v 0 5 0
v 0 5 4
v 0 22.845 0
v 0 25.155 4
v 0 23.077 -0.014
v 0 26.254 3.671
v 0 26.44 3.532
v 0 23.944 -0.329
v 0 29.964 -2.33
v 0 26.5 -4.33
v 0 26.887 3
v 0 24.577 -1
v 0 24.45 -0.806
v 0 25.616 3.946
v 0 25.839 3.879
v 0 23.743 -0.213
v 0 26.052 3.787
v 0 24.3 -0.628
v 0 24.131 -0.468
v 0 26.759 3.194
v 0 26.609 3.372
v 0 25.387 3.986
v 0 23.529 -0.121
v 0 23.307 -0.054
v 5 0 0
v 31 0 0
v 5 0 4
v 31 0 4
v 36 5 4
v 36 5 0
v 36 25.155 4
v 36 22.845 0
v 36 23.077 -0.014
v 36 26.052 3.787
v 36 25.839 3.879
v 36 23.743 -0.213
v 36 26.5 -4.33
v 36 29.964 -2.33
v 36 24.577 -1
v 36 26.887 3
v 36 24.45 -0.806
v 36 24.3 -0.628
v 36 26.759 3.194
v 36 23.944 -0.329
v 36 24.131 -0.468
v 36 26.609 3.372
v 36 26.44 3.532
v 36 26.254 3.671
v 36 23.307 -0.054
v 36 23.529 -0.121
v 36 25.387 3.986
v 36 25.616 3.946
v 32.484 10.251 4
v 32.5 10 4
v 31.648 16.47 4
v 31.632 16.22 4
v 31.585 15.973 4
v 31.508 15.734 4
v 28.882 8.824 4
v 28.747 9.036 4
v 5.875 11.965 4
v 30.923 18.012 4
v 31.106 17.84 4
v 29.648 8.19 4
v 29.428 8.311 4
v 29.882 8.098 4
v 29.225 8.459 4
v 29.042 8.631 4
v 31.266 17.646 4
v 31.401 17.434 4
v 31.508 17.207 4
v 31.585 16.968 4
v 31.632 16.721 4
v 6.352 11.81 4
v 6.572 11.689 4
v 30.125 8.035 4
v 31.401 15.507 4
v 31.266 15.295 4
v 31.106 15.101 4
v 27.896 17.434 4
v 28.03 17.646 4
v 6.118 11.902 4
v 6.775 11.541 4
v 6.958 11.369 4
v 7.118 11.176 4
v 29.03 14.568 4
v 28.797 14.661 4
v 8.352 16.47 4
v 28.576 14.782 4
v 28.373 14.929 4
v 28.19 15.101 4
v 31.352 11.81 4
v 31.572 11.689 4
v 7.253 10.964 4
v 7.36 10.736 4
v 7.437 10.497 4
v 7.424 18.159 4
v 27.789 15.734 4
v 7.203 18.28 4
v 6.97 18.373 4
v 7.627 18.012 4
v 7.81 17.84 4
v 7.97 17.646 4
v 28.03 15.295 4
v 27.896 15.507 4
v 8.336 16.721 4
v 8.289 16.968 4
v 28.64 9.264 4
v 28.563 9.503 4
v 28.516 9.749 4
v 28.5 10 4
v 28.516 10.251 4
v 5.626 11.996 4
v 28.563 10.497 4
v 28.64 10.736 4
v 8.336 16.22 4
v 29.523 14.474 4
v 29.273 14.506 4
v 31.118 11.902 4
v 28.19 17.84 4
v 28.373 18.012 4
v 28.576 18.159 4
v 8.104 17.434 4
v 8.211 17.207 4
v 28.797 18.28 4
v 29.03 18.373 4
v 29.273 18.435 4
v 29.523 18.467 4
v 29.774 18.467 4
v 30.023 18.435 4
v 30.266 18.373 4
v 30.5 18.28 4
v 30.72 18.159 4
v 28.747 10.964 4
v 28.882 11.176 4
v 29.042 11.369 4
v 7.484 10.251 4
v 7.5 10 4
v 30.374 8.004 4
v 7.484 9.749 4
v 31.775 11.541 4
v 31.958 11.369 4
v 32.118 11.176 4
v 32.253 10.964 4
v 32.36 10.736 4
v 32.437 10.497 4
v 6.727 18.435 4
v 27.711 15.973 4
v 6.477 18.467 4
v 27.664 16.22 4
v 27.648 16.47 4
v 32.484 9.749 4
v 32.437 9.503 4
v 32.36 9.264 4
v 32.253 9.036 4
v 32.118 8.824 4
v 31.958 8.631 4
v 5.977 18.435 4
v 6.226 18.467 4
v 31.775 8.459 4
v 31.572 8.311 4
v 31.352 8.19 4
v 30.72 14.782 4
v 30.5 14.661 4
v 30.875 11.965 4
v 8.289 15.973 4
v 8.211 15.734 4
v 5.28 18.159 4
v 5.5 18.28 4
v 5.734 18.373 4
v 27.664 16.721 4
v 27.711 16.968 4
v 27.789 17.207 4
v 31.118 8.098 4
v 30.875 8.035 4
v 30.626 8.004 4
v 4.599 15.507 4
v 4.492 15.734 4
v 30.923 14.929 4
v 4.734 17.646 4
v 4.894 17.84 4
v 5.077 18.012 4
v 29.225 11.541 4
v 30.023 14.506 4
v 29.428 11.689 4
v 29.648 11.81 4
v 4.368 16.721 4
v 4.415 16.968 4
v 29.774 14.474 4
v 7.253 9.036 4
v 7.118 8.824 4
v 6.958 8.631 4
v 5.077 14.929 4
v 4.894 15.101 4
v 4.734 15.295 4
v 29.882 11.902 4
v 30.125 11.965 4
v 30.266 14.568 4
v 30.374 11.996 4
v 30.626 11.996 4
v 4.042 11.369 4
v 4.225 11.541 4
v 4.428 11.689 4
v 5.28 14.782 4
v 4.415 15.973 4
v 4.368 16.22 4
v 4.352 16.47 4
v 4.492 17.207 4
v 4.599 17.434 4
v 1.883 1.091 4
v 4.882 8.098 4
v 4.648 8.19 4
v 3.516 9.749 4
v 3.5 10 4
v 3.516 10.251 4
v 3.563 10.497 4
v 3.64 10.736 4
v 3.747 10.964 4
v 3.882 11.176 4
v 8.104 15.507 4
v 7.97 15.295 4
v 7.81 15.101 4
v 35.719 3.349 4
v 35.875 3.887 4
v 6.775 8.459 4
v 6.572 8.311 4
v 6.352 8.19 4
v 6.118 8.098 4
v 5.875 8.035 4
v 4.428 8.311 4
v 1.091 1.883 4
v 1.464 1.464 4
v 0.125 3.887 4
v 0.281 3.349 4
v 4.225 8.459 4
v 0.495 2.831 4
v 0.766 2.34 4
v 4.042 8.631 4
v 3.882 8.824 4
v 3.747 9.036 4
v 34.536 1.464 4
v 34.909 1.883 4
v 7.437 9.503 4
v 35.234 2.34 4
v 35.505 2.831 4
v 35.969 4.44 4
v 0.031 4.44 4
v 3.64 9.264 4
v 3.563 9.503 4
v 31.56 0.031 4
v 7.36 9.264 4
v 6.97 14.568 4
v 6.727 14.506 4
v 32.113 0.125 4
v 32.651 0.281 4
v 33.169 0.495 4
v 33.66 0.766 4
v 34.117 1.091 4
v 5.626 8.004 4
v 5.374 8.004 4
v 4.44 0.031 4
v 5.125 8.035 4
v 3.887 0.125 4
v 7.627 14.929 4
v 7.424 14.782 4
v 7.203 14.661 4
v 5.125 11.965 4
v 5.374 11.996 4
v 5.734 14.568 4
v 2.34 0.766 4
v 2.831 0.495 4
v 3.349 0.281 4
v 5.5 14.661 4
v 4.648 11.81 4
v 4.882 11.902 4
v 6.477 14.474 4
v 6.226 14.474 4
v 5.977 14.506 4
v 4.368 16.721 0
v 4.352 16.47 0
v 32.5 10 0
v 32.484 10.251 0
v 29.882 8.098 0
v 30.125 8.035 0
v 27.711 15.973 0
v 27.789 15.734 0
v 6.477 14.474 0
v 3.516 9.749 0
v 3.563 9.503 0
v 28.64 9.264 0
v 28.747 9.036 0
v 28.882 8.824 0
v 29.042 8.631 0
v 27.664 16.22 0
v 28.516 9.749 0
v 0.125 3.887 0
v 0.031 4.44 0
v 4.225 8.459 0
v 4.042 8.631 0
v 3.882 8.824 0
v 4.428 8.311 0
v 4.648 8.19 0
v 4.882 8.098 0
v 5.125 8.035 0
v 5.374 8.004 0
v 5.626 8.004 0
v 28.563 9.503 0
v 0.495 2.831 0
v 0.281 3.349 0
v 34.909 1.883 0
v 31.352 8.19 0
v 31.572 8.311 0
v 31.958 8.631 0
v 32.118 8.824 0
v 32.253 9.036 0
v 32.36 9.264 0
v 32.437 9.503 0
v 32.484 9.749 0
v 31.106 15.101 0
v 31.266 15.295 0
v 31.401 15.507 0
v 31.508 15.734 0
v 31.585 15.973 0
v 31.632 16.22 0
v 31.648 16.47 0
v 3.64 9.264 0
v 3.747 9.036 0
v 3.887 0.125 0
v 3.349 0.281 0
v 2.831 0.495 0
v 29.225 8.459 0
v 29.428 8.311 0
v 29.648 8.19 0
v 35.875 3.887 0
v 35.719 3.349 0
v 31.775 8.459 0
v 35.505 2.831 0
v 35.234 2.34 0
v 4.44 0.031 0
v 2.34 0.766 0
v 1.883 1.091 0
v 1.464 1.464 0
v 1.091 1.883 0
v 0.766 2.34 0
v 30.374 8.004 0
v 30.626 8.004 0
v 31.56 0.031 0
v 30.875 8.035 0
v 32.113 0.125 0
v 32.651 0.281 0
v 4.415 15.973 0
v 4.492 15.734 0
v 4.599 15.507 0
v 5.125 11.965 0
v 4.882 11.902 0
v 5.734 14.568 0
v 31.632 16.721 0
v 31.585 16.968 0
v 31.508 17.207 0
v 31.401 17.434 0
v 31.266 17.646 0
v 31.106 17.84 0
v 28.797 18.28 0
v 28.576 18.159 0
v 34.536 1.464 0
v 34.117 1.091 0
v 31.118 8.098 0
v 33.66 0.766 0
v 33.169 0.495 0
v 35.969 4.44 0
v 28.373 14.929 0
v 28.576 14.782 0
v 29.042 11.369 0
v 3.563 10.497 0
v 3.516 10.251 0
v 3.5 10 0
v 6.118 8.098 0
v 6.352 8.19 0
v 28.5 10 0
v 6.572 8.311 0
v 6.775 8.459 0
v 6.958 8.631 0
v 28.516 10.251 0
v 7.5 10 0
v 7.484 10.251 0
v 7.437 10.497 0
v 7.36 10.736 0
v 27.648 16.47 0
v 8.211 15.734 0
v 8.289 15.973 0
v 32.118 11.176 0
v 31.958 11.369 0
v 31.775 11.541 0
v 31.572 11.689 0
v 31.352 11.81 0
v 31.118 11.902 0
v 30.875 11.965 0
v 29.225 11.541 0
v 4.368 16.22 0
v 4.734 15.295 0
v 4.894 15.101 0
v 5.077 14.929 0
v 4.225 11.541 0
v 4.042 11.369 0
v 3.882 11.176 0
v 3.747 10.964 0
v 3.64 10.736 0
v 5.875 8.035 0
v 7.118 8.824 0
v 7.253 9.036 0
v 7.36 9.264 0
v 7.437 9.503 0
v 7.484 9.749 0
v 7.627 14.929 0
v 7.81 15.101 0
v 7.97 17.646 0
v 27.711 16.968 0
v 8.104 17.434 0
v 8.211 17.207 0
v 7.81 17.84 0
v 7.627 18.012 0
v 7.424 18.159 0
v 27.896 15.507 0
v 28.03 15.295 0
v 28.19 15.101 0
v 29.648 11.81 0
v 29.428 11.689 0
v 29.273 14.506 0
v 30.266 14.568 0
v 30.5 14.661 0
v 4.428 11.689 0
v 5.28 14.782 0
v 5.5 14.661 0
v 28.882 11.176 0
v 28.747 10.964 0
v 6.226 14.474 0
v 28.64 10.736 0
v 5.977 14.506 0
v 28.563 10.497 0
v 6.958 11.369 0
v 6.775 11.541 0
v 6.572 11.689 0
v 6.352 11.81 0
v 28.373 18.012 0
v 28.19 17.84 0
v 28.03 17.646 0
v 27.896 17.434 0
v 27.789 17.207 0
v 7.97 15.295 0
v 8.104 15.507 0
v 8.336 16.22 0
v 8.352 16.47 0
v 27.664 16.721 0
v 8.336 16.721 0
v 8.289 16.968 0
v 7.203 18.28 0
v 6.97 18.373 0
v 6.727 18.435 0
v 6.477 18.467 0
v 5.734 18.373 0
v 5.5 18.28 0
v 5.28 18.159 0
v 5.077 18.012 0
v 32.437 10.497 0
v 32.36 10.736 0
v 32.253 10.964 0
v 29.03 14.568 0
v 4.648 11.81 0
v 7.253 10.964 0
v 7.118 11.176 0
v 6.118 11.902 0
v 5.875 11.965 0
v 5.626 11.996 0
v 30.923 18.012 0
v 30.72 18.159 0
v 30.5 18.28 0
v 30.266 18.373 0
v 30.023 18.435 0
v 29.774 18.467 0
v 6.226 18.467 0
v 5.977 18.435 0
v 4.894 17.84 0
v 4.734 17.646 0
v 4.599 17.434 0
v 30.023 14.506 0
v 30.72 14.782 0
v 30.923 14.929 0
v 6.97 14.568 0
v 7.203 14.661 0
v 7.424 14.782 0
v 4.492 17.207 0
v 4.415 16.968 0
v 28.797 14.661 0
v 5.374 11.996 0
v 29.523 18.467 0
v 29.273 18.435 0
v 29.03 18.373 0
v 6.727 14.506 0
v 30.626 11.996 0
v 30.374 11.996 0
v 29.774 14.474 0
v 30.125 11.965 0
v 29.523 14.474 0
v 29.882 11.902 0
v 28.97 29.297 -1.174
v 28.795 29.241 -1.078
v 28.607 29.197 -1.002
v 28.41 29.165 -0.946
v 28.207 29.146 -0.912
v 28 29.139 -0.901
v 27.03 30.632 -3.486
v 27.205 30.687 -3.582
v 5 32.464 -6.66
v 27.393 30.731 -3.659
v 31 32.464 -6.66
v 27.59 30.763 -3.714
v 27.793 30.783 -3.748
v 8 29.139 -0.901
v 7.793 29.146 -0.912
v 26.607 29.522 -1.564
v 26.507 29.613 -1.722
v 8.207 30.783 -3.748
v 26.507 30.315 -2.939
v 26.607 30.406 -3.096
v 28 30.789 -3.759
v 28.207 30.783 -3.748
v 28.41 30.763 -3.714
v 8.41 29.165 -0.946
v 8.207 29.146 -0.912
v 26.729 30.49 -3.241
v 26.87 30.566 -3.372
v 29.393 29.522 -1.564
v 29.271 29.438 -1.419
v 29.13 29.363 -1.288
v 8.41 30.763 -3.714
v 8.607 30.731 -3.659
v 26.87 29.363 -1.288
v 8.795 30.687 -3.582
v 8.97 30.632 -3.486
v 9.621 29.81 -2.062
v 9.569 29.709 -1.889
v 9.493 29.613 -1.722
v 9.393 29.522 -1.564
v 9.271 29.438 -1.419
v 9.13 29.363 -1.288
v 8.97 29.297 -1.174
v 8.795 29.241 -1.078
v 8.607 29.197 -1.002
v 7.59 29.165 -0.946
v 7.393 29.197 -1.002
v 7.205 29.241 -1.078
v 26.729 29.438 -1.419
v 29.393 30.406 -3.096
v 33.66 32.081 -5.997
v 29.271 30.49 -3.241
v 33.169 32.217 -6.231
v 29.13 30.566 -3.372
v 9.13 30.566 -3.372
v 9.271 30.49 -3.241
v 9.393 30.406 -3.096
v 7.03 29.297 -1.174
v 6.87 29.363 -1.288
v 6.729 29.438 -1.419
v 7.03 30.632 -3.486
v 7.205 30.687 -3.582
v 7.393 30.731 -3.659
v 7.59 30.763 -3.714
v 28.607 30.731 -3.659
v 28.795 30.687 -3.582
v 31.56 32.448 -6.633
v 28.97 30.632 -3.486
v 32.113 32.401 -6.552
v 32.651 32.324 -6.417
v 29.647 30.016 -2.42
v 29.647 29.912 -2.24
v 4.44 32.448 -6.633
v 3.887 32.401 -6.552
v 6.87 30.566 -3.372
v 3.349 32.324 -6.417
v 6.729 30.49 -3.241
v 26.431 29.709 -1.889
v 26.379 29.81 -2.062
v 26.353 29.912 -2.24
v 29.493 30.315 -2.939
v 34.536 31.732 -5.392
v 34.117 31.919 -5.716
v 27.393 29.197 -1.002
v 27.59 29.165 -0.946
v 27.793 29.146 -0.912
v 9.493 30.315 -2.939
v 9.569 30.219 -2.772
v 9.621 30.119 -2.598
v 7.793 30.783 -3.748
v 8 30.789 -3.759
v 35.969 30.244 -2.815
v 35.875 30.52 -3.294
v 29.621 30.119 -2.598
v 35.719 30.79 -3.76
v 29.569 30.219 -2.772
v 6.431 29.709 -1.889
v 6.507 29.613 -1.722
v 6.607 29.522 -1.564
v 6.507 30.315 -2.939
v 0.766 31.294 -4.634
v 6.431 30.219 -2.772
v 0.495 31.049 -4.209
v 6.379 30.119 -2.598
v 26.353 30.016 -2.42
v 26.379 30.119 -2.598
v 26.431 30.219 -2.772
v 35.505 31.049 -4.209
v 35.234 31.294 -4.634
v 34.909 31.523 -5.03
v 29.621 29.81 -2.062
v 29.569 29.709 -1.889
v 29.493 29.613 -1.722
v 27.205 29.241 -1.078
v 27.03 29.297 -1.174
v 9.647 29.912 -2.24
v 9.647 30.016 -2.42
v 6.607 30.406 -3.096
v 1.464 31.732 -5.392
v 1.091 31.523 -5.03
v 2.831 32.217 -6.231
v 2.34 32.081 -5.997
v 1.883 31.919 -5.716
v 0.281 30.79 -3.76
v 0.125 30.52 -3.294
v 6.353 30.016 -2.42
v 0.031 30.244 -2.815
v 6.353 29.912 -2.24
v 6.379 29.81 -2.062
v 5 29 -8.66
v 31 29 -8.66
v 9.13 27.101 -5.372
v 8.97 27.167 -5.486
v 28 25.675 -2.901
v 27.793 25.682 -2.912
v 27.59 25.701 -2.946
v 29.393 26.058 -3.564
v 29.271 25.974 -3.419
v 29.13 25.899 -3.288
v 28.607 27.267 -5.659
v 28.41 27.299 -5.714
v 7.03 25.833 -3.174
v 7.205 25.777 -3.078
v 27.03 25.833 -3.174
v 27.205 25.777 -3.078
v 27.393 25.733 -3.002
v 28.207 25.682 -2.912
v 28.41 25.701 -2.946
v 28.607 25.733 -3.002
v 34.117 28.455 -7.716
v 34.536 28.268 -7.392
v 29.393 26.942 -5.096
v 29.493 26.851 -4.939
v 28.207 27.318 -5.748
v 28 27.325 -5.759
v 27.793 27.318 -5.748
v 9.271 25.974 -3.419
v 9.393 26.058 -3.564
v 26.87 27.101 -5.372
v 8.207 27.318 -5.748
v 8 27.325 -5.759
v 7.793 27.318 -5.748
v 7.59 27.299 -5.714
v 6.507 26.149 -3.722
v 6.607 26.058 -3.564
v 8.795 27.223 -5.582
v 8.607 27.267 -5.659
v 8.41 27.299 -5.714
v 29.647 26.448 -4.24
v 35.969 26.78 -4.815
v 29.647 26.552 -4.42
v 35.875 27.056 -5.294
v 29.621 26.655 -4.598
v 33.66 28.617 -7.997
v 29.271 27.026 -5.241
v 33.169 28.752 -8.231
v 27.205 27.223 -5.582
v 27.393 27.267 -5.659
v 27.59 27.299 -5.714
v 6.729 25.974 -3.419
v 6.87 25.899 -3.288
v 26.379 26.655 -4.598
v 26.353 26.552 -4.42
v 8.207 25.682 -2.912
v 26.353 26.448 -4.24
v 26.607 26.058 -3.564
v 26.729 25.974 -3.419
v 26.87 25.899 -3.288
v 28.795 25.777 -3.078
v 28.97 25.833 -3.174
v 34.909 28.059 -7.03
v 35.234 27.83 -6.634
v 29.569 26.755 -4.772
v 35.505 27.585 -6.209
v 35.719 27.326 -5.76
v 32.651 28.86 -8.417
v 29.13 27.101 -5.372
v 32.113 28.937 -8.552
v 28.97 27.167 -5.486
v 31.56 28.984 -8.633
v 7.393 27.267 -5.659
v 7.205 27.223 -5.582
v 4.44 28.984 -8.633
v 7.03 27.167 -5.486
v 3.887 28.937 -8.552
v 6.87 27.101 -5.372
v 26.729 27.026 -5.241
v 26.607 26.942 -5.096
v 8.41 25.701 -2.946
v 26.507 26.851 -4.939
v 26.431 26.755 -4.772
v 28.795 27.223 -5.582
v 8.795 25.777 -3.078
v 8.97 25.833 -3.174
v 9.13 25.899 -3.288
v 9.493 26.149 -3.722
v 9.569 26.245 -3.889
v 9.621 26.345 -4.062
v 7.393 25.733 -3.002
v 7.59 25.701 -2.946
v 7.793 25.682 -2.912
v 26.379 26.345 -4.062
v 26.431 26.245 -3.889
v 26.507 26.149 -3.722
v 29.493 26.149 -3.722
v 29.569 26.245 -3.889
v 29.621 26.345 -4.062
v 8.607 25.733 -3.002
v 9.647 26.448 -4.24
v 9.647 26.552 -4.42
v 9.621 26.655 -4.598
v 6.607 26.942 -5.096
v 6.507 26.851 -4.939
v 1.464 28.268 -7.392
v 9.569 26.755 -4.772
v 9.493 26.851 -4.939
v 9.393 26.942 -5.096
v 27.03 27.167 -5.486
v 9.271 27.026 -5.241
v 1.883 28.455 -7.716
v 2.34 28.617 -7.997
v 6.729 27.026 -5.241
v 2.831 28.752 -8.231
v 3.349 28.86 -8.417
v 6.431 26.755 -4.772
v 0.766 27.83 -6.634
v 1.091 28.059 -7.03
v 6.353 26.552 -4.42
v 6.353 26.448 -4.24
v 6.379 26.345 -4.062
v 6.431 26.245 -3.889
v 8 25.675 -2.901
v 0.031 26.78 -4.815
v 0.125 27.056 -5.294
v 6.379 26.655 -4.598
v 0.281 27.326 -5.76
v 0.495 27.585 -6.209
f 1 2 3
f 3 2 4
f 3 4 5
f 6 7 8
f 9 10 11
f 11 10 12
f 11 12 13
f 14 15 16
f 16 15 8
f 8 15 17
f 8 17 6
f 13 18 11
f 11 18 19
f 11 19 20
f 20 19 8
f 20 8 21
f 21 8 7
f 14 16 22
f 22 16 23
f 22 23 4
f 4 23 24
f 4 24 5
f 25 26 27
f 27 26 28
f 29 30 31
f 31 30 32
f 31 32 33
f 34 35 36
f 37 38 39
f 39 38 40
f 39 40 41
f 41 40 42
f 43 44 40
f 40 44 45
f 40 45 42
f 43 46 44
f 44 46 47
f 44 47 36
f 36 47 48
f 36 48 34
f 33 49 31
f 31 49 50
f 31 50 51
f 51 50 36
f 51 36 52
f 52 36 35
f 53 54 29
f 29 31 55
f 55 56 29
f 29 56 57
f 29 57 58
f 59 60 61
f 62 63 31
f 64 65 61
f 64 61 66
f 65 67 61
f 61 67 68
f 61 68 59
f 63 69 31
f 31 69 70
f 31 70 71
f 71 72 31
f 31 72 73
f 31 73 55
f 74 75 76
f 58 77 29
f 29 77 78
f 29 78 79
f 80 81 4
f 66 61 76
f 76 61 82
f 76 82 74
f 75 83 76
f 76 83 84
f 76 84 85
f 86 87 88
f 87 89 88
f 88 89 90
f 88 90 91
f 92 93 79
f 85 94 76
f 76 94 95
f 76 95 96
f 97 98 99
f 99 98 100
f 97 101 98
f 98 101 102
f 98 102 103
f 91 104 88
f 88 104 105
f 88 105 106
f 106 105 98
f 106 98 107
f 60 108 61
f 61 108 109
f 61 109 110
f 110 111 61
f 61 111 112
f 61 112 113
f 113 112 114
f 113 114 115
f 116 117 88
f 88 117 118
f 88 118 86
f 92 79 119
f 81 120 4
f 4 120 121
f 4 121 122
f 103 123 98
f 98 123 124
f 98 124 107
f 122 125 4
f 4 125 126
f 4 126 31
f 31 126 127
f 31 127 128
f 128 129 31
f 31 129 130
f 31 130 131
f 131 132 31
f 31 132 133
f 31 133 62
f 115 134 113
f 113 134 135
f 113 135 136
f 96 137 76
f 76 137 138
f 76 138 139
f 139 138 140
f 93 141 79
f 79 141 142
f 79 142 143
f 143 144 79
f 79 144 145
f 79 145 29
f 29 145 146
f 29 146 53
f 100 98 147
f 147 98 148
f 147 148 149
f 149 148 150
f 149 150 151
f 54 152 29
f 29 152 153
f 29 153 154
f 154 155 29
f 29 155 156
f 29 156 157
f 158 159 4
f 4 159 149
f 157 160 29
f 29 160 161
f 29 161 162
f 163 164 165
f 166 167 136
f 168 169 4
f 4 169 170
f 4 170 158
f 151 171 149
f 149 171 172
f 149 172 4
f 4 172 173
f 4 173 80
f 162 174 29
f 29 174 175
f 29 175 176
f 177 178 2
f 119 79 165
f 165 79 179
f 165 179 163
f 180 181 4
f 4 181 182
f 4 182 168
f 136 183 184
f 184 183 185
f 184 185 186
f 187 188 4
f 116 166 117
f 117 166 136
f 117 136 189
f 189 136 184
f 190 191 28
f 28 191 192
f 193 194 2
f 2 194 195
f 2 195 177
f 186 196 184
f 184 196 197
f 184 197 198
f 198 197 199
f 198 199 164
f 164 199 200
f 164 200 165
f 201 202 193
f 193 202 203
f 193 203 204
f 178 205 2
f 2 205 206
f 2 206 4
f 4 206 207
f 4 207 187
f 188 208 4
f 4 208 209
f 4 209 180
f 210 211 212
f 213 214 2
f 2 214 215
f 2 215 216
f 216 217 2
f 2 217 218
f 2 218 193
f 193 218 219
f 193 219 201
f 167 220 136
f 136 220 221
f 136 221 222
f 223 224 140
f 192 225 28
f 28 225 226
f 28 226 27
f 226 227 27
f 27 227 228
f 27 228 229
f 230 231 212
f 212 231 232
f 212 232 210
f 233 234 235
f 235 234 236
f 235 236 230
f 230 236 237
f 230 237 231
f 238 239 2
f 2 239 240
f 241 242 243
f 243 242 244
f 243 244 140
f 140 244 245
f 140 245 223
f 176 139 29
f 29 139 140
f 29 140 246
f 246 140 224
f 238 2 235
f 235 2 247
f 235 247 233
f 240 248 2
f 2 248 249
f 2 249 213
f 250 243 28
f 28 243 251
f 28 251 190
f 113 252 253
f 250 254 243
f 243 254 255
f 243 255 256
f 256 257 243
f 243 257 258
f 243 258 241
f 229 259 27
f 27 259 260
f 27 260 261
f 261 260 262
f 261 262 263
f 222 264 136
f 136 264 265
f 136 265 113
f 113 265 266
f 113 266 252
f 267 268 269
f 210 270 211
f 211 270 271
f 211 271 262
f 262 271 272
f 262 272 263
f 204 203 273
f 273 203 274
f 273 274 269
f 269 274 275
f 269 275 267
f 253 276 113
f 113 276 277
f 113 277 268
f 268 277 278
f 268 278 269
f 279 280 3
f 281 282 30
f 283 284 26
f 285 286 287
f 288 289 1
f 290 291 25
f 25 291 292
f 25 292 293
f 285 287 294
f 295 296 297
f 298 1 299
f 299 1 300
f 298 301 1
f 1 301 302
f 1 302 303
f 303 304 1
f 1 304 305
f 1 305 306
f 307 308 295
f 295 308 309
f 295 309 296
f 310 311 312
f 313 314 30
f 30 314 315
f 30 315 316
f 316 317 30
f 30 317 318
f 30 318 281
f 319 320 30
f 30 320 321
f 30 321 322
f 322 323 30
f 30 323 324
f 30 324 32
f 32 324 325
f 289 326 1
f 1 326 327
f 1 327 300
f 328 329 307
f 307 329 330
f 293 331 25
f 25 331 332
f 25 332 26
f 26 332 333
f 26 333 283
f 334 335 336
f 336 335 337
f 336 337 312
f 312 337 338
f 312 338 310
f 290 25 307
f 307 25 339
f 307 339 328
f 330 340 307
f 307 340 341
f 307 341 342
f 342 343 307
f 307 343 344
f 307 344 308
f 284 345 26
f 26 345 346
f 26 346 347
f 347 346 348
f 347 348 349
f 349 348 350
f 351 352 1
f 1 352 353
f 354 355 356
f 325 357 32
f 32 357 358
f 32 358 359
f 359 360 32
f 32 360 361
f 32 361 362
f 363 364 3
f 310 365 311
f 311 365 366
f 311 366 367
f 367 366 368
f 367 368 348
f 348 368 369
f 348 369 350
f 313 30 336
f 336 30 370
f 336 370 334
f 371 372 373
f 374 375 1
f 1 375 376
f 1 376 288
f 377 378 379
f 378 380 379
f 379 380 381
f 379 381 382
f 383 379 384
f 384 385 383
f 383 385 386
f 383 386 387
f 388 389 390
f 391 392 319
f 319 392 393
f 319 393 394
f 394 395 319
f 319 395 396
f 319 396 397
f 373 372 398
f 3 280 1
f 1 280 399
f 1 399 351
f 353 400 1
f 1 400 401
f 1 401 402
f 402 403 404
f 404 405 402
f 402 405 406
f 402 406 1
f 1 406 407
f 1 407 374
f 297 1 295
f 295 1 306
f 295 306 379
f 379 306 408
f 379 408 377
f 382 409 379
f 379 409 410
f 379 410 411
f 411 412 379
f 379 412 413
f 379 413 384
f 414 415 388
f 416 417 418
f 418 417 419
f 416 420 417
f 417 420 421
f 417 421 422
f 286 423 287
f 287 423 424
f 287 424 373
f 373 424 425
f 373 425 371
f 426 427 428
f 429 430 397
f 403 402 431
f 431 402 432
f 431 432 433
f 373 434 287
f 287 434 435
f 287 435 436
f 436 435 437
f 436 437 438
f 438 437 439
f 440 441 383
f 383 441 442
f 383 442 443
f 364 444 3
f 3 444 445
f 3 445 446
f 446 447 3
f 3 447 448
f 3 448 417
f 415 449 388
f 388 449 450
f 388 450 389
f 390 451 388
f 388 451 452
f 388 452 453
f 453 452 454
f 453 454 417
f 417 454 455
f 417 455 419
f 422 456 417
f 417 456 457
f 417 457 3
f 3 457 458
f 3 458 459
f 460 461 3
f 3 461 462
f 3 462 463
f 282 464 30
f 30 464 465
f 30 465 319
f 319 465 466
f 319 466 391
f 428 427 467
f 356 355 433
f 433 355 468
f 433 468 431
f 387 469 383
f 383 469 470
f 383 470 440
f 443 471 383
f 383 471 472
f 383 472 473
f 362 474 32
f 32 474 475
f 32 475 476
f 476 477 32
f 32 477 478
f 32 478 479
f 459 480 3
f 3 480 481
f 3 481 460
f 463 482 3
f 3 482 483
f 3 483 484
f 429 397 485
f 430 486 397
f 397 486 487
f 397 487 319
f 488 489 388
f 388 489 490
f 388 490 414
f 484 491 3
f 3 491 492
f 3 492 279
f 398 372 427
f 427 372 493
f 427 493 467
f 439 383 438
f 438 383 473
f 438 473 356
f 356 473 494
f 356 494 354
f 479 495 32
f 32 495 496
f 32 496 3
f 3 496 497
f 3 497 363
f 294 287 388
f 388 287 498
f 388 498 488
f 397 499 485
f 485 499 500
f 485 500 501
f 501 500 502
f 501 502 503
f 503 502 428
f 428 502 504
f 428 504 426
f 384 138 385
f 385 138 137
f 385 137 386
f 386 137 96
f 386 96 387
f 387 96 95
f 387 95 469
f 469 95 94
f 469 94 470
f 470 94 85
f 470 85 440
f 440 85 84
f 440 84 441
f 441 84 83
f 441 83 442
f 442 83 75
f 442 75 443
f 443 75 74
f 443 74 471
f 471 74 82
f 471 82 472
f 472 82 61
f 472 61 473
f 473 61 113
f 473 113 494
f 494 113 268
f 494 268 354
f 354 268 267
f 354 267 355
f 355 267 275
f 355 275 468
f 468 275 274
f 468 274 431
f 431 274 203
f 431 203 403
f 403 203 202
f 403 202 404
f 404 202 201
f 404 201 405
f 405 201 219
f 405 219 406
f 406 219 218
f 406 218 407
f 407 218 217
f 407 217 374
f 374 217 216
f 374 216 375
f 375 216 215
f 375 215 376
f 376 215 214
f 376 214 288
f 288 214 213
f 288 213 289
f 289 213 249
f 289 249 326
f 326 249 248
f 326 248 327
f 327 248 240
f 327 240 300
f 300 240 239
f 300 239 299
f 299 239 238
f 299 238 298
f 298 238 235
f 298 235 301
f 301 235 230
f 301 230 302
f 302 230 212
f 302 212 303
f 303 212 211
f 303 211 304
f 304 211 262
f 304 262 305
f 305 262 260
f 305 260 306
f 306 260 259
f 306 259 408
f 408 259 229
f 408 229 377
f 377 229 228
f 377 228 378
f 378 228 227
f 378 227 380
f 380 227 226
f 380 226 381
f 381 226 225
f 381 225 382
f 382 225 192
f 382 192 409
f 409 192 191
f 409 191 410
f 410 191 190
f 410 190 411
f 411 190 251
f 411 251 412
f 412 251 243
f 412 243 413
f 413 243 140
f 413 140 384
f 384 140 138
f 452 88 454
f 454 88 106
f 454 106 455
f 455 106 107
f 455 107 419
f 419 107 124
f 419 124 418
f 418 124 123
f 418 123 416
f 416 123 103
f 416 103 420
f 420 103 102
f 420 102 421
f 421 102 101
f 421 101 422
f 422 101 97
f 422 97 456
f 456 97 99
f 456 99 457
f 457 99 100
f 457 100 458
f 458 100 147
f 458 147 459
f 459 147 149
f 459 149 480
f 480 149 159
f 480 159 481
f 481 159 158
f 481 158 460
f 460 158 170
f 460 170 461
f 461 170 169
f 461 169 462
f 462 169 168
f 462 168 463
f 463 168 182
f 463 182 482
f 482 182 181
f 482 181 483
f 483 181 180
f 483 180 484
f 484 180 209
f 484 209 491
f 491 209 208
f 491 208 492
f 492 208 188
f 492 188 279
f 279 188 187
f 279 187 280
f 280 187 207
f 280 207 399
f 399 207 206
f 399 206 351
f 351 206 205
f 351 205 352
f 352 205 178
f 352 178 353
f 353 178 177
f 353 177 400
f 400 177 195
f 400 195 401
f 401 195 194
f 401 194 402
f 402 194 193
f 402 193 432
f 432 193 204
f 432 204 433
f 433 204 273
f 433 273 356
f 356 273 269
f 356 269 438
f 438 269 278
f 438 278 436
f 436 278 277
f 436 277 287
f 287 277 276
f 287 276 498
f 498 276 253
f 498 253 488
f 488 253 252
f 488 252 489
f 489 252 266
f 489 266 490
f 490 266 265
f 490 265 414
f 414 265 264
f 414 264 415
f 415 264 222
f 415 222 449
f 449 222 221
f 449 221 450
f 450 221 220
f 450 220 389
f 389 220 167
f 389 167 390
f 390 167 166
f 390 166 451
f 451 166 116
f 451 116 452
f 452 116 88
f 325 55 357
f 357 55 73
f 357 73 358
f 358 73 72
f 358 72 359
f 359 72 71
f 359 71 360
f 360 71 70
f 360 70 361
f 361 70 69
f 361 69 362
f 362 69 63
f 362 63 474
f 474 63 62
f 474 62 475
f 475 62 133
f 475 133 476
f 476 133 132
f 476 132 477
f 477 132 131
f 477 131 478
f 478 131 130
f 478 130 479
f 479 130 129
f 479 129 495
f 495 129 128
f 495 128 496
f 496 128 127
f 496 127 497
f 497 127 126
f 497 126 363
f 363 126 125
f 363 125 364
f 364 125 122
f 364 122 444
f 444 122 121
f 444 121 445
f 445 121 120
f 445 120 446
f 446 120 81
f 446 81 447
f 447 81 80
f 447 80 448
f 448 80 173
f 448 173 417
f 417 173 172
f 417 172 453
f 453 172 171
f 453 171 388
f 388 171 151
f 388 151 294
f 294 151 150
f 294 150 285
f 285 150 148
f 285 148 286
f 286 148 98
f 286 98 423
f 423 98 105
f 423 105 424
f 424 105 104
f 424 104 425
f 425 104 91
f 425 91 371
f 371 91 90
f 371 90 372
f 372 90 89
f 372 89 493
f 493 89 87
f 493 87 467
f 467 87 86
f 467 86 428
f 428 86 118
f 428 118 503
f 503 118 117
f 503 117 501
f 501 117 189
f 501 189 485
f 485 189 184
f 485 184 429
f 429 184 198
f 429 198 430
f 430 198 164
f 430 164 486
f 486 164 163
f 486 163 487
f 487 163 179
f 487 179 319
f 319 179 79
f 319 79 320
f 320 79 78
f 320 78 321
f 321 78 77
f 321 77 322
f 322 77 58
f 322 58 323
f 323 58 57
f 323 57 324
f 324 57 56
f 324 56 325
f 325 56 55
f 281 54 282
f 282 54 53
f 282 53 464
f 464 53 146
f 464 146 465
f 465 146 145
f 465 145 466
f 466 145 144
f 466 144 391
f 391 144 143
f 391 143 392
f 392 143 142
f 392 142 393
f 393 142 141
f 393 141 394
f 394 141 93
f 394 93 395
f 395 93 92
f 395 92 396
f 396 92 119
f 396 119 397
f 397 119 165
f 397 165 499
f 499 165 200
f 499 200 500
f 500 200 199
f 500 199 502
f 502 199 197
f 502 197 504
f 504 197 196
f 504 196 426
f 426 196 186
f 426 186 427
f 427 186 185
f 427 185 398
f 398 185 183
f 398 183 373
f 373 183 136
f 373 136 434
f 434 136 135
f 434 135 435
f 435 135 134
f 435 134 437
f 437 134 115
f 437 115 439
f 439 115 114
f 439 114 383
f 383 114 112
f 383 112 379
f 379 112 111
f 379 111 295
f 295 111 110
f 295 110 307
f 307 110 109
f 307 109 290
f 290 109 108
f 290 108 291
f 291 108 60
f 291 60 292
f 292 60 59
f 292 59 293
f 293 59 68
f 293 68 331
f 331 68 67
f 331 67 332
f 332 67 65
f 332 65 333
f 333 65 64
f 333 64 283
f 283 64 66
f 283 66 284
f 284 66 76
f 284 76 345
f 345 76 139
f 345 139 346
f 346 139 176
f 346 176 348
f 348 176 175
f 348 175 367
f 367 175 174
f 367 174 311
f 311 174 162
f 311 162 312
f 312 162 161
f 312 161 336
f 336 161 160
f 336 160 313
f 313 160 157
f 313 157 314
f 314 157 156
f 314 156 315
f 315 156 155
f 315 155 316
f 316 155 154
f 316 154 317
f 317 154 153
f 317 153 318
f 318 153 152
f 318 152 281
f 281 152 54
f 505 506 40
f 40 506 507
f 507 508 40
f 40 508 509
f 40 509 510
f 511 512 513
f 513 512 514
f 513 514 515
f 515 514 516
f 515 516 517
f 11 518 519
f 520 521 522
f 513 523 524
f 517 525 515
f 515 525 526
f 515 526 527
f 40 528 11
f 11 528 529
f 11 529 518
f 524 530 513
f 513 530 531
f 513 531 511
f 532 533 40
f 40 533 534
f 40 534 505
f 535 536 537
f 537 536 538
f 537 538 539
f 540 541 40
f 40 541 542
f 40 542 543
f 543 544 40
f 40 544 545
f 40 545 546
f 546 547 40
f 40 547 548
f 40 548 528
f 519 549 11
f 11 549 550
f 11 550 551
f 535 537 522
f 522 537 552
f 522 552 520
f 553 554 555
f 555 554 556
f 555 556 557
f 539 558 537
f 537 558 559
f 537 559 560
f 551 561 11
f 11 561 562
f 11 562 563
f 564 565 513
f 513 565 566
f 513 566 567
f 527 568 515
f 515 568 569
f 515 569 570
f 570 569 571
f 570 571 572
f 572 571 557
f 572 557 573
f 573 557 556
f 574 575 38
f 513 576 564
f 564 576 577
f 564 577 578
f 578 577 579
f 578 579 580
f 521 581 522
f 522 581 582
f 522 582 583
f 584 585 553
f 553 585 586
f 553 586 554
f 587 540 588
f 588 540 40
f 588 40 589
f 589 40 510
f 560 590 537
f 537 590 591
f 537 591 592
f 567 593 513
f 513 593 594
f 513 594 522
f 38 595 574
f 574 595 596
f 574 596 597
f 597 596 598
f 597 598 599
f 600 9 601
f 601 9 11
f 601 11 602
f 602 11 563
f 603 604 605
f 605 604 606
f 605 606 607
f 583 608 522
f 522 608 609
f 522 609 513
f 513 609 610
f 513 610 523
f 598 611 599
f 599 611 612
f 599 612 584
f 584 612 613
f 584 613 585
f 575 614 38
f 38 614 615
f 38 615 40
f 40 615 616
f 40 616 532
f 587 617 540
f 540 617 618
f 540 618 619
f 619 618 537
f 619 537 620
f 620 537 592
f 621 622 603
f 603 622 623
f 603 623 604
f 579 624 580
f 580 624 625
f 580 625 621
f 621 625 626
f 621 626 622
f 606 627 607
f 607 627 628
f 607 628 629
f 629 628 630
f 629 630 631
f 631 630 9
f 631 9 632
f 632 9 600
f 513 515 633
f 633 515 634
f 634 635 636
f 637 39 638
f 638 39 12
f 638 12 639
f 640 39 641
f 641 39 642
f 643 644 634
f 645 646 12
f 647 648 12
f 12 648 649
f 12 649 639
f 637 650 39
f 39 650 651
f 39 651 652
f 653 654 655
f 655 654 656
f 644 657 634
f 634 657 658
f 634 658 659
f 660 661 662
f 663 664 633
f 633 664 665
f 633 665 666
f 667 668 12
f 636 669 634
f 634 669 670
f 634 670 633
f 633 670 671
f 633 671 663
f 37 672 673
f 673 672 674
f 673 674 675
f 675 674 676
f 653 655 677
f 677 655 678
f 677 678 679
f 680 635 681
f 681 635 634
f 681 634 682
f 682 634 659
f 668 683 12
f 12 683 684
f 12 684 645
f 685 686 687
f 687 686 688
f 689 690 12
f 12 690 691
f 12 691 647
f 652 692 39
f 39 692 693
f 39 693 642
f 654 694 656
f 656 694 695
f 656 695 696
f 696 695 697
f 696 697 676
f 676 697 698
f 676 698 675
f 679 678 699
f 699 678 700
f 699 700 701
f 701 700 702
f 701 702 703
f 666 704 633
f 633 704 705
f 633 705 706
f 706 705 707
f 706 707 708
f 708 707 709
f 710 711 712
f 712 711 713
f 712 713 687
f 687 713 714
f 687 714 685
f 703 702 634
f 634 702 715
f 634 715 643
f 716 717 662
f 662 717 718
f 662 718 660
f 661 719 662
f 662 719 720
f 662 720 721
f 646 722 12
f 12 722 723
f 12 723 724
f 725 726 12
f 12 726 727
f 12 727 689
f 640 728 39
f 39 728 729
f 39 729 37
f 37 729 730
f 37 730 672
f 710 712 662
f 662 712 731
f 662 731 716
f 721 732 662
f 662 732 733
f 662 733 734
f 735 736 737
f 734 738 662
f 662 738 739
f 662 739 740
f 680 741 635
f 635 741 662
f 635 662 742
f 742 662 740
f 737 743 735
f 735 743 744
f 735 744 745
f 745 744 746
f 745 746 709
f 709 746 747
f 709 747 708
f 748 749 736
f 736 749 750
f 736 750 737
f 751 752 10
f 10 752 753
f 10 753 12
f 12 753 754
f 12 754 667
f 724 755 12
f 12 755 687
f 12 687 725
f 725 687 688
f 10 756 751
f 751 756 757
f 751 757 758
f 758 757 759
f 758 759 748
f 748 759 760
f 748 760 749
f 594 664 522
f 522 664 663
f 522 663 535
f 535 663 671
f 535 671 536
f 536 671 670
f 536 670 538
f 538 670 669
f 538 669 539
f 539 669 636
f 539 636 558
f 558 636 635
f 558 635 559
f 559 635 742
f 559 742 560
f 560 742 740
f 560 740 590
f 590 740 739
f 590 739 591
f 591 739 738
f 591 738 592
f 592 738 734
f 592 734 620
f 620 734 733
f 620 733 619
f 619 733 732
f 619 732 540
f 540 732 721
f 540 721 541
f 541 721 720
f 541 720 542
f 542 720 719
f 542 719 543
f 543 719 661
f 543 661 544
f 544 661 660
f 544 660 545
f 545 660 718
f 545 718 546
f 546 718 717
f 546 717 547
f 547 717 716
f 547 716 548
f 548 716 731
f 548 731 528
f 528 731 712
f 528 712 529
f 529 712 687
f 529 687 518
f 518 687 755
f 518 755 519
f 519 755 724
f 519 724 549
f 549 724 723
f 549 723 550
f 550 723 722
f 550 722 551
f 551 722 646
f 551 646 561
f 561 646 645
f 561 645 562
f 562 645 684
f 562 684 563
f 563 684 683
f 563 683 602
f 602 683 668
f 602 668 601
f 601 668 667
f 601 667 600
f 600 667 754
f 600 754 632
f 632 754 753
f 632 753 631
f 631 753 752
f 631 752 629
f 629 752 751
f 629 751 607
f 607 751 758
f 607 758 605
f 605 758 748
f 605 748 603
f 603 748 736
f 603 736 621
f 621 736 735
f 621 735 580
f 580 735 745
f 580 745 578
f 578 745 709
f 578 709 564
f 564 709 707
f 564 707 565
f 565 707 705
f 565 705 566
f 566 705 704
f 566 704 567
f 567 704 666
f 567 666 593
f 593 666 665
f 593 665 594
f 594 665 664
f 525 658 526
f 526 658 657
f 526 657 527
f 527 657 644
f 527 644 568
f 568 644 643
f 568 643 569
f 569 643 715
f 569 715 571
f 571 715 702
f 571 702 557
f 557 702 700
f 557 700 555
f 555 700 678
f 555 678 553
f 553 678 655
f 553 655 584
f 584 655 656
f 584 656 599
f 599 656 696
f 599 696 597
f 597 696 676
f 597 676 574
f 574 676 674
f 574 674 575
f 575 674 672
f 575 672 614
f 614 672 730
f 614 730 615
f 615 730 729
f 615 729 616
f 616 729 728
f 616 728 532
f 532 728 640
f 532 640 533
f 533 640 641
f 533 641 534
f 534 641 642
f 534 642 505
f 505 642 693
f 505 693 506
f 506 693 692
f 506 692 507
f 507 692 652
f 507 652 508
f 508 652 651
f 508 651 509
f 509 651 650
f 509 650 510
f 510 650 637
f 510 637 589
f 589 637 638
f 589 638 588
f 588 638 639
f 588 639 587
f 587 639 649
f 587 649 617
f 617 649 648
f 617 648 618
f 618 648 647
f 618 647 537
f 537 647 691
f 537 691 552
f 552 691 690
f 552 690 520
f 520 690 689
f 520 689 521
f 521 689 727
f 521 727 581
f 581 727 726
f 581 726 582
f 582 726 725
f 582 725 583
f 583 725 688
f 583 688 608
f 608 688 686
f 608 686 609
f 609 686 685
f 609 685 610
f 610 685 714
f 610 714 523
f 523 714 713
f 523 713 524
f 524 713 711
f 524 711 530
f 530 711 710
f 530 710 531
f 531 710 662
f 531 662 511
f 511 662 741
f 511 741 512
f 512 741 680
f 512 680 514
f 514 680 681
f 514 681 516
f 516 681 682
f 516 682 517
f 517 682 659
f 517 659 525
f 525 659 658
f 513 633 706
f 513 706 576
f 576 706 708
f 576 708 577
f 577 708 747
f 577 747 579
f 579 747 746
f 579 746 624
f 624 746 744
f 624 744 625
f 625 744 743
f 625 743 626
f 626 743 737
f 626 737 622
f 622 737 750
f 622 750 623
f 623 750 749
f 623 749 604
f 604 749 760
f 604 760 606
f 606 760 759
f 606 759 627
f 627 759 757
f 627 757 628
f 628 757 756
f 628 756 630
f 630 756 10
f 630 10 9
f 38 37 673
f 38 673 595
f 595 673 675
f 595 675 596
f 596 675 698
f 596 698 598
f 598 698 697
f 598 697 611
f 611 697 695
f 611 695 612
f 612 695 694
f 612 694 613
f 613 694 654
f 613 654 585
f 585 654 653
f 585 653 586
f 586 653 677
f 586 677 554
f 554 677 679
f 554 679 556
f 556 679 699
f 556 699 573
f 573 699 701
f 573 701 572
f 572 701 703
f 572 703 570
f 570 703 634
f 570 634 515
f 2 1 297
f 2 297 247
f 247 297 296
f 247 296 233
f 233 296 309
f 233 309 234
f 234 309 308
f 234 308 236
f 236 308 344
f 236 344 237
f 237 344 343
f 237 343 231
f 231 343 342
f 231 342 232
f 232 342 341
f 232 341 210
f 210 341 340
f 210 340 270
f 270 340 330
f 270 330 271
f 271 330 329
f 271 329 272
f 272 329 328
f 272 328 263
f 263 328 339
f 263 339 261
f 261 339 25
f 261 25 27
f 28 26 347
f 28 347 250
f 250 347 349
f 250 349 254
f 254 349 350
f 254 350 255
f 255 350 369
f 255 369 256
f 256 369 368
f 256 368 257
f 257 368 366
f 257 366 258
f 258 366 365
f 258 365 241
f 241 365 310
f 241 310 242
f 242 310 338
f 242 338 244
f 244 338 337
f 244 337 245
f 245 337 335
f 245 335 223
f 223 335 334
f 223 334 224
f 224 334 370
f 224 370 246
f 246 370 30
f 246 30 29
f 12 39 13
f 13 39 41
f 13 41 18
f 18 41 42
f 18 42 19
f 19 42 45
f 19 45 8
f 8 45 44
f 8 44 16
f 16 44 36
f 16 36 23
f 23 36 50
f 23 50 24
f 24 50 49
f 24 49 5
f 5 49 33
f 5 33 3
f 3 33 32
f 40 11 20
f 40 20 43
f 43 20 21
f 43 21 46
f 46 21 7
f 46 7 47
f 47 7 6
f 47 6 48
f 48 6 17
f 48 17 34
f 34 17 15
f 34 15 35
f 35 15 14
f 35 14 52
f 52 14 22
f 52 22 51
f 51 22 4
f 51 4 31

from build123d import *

# Parameters (mm, degrees)
ESQUISSE1_W                  = 36
ESQUISSE1_H                  = 24
BOSS_EXTRU_1_DEPTH           = 4
ESQUISSE2_R                  = 2
ENL_V_MAT_EXTRU_1_DEPTH      = 1
ENL_V_MAT_EXTRU_1_DEPTH_BACK = 5
BOSS_EXTRU_2_DEPTH           = 36
ESQUISSE4_R                  = 1.65
ENL_V_MAT_EXTRU_2_DEPTH      = 26.11473671
ENL_V_MAT_EXTRU_2_DEPTH_BACK = 10.330127019
CONG_2_R                     = 5
CONG_3_R                     = 2


with BuildPart() as part:
    # Esquisse1 → Boss.-Extru.1 (new body)
    with BuildSketch(Plane.XY):
        with Locations((18, 12)):
            Rectangle(ESQUISSE1_W, ESQUISSE1_H)
    extrude(amount=BOSS_EXTRU_1_DEPTH)

    # Esquisse2 → Enlèv. mat.-Extru.1 (cut, two sides)
    with BuildSketch(Plane.XY.offset(4)) as enl_v_mat_extru_1_sk:
        with Locations((5.5, 10)):
            Circle(ESQUISSE2_R)
        with Locations((30.5, 10)):
            Circle(ESQUISSE2_R)
        with Locations((29.648145657, 16.470476128)):
            Circle(ESQUISSE2_R)
        with Locations((6.351854343, 16.470476128)):
            Circle(ESQUISSE2_R)
    extrude(amount=ENL_V_MAT_EXTRU_1_DEPTH, mode=Mode.SUBTRACT)
    extrude(enl_v_mat_extru_1_sk.sketch, amount=-ENL_V_MAT_EXTRU_1_DEPTH_BACK, mode=Mode.SUBTRACT)

    # Esquisse3 → Boss.-Extru.2 (add)
    with BuildSketch(Plane(origin=(36, 0, 0), x_dir=(0, 0, -1), z_dir=(1, 0, 0))):
        Polygon((0, 24), (8.660254038, 29), (6.660254038, 32.464101615), (-4, 26.309401077), (-4, 24), align=None)
    extrude(amount=-BOSS_EXTRU_2_DEPTH)

    # Esquisse4 → Enlèv. mat.-Extru.2 (cut, two sides)
    with BuildSketch(Plane(origin=(0, 18, 10.392304845), x_dir=(1, 0, 0), z_dir=(0, -0.866025404, -0.5))) as enl_v_mat_extru_2_sk:
        with Locations((8, -17)):
            Circle(ESQUISSE4_R)
        with Locations((28, -17)):
            Circle(ESQUISSE4_R)
    extrude(amount=ENL_V_MAT_EXTRU_2_DEPTH, mode=Mode.SUBTRACT)
    extrude(enl_v_mat_extru_2_sk.sketch, amount=-ENL_V_MAT_EXTRU_2_DEPTH_BACK, mode=Mode.SUBTRACT)

    # Congé2
    cong_2_edges = [part.edges().sort_by_distance(p)[0] for p in [
        (0, 30.732050808, -7.660254038),
        (36, 30.732050808, -7.660254038),
        (36, 0, 2),
        (0, 0, 2),
    ]]
    fillet(cong_2_edges, radius=CONG_2_R)

    # Congé3
    cong_3_edges = [part.edges().sort_by_distance(p)[0] for p in [
        (18, 26.309401077, 4),
        (18, 24, 0),
    ]]
    fillet(cong_3_edges, radius=CONG_3_R)


solid = part.part
